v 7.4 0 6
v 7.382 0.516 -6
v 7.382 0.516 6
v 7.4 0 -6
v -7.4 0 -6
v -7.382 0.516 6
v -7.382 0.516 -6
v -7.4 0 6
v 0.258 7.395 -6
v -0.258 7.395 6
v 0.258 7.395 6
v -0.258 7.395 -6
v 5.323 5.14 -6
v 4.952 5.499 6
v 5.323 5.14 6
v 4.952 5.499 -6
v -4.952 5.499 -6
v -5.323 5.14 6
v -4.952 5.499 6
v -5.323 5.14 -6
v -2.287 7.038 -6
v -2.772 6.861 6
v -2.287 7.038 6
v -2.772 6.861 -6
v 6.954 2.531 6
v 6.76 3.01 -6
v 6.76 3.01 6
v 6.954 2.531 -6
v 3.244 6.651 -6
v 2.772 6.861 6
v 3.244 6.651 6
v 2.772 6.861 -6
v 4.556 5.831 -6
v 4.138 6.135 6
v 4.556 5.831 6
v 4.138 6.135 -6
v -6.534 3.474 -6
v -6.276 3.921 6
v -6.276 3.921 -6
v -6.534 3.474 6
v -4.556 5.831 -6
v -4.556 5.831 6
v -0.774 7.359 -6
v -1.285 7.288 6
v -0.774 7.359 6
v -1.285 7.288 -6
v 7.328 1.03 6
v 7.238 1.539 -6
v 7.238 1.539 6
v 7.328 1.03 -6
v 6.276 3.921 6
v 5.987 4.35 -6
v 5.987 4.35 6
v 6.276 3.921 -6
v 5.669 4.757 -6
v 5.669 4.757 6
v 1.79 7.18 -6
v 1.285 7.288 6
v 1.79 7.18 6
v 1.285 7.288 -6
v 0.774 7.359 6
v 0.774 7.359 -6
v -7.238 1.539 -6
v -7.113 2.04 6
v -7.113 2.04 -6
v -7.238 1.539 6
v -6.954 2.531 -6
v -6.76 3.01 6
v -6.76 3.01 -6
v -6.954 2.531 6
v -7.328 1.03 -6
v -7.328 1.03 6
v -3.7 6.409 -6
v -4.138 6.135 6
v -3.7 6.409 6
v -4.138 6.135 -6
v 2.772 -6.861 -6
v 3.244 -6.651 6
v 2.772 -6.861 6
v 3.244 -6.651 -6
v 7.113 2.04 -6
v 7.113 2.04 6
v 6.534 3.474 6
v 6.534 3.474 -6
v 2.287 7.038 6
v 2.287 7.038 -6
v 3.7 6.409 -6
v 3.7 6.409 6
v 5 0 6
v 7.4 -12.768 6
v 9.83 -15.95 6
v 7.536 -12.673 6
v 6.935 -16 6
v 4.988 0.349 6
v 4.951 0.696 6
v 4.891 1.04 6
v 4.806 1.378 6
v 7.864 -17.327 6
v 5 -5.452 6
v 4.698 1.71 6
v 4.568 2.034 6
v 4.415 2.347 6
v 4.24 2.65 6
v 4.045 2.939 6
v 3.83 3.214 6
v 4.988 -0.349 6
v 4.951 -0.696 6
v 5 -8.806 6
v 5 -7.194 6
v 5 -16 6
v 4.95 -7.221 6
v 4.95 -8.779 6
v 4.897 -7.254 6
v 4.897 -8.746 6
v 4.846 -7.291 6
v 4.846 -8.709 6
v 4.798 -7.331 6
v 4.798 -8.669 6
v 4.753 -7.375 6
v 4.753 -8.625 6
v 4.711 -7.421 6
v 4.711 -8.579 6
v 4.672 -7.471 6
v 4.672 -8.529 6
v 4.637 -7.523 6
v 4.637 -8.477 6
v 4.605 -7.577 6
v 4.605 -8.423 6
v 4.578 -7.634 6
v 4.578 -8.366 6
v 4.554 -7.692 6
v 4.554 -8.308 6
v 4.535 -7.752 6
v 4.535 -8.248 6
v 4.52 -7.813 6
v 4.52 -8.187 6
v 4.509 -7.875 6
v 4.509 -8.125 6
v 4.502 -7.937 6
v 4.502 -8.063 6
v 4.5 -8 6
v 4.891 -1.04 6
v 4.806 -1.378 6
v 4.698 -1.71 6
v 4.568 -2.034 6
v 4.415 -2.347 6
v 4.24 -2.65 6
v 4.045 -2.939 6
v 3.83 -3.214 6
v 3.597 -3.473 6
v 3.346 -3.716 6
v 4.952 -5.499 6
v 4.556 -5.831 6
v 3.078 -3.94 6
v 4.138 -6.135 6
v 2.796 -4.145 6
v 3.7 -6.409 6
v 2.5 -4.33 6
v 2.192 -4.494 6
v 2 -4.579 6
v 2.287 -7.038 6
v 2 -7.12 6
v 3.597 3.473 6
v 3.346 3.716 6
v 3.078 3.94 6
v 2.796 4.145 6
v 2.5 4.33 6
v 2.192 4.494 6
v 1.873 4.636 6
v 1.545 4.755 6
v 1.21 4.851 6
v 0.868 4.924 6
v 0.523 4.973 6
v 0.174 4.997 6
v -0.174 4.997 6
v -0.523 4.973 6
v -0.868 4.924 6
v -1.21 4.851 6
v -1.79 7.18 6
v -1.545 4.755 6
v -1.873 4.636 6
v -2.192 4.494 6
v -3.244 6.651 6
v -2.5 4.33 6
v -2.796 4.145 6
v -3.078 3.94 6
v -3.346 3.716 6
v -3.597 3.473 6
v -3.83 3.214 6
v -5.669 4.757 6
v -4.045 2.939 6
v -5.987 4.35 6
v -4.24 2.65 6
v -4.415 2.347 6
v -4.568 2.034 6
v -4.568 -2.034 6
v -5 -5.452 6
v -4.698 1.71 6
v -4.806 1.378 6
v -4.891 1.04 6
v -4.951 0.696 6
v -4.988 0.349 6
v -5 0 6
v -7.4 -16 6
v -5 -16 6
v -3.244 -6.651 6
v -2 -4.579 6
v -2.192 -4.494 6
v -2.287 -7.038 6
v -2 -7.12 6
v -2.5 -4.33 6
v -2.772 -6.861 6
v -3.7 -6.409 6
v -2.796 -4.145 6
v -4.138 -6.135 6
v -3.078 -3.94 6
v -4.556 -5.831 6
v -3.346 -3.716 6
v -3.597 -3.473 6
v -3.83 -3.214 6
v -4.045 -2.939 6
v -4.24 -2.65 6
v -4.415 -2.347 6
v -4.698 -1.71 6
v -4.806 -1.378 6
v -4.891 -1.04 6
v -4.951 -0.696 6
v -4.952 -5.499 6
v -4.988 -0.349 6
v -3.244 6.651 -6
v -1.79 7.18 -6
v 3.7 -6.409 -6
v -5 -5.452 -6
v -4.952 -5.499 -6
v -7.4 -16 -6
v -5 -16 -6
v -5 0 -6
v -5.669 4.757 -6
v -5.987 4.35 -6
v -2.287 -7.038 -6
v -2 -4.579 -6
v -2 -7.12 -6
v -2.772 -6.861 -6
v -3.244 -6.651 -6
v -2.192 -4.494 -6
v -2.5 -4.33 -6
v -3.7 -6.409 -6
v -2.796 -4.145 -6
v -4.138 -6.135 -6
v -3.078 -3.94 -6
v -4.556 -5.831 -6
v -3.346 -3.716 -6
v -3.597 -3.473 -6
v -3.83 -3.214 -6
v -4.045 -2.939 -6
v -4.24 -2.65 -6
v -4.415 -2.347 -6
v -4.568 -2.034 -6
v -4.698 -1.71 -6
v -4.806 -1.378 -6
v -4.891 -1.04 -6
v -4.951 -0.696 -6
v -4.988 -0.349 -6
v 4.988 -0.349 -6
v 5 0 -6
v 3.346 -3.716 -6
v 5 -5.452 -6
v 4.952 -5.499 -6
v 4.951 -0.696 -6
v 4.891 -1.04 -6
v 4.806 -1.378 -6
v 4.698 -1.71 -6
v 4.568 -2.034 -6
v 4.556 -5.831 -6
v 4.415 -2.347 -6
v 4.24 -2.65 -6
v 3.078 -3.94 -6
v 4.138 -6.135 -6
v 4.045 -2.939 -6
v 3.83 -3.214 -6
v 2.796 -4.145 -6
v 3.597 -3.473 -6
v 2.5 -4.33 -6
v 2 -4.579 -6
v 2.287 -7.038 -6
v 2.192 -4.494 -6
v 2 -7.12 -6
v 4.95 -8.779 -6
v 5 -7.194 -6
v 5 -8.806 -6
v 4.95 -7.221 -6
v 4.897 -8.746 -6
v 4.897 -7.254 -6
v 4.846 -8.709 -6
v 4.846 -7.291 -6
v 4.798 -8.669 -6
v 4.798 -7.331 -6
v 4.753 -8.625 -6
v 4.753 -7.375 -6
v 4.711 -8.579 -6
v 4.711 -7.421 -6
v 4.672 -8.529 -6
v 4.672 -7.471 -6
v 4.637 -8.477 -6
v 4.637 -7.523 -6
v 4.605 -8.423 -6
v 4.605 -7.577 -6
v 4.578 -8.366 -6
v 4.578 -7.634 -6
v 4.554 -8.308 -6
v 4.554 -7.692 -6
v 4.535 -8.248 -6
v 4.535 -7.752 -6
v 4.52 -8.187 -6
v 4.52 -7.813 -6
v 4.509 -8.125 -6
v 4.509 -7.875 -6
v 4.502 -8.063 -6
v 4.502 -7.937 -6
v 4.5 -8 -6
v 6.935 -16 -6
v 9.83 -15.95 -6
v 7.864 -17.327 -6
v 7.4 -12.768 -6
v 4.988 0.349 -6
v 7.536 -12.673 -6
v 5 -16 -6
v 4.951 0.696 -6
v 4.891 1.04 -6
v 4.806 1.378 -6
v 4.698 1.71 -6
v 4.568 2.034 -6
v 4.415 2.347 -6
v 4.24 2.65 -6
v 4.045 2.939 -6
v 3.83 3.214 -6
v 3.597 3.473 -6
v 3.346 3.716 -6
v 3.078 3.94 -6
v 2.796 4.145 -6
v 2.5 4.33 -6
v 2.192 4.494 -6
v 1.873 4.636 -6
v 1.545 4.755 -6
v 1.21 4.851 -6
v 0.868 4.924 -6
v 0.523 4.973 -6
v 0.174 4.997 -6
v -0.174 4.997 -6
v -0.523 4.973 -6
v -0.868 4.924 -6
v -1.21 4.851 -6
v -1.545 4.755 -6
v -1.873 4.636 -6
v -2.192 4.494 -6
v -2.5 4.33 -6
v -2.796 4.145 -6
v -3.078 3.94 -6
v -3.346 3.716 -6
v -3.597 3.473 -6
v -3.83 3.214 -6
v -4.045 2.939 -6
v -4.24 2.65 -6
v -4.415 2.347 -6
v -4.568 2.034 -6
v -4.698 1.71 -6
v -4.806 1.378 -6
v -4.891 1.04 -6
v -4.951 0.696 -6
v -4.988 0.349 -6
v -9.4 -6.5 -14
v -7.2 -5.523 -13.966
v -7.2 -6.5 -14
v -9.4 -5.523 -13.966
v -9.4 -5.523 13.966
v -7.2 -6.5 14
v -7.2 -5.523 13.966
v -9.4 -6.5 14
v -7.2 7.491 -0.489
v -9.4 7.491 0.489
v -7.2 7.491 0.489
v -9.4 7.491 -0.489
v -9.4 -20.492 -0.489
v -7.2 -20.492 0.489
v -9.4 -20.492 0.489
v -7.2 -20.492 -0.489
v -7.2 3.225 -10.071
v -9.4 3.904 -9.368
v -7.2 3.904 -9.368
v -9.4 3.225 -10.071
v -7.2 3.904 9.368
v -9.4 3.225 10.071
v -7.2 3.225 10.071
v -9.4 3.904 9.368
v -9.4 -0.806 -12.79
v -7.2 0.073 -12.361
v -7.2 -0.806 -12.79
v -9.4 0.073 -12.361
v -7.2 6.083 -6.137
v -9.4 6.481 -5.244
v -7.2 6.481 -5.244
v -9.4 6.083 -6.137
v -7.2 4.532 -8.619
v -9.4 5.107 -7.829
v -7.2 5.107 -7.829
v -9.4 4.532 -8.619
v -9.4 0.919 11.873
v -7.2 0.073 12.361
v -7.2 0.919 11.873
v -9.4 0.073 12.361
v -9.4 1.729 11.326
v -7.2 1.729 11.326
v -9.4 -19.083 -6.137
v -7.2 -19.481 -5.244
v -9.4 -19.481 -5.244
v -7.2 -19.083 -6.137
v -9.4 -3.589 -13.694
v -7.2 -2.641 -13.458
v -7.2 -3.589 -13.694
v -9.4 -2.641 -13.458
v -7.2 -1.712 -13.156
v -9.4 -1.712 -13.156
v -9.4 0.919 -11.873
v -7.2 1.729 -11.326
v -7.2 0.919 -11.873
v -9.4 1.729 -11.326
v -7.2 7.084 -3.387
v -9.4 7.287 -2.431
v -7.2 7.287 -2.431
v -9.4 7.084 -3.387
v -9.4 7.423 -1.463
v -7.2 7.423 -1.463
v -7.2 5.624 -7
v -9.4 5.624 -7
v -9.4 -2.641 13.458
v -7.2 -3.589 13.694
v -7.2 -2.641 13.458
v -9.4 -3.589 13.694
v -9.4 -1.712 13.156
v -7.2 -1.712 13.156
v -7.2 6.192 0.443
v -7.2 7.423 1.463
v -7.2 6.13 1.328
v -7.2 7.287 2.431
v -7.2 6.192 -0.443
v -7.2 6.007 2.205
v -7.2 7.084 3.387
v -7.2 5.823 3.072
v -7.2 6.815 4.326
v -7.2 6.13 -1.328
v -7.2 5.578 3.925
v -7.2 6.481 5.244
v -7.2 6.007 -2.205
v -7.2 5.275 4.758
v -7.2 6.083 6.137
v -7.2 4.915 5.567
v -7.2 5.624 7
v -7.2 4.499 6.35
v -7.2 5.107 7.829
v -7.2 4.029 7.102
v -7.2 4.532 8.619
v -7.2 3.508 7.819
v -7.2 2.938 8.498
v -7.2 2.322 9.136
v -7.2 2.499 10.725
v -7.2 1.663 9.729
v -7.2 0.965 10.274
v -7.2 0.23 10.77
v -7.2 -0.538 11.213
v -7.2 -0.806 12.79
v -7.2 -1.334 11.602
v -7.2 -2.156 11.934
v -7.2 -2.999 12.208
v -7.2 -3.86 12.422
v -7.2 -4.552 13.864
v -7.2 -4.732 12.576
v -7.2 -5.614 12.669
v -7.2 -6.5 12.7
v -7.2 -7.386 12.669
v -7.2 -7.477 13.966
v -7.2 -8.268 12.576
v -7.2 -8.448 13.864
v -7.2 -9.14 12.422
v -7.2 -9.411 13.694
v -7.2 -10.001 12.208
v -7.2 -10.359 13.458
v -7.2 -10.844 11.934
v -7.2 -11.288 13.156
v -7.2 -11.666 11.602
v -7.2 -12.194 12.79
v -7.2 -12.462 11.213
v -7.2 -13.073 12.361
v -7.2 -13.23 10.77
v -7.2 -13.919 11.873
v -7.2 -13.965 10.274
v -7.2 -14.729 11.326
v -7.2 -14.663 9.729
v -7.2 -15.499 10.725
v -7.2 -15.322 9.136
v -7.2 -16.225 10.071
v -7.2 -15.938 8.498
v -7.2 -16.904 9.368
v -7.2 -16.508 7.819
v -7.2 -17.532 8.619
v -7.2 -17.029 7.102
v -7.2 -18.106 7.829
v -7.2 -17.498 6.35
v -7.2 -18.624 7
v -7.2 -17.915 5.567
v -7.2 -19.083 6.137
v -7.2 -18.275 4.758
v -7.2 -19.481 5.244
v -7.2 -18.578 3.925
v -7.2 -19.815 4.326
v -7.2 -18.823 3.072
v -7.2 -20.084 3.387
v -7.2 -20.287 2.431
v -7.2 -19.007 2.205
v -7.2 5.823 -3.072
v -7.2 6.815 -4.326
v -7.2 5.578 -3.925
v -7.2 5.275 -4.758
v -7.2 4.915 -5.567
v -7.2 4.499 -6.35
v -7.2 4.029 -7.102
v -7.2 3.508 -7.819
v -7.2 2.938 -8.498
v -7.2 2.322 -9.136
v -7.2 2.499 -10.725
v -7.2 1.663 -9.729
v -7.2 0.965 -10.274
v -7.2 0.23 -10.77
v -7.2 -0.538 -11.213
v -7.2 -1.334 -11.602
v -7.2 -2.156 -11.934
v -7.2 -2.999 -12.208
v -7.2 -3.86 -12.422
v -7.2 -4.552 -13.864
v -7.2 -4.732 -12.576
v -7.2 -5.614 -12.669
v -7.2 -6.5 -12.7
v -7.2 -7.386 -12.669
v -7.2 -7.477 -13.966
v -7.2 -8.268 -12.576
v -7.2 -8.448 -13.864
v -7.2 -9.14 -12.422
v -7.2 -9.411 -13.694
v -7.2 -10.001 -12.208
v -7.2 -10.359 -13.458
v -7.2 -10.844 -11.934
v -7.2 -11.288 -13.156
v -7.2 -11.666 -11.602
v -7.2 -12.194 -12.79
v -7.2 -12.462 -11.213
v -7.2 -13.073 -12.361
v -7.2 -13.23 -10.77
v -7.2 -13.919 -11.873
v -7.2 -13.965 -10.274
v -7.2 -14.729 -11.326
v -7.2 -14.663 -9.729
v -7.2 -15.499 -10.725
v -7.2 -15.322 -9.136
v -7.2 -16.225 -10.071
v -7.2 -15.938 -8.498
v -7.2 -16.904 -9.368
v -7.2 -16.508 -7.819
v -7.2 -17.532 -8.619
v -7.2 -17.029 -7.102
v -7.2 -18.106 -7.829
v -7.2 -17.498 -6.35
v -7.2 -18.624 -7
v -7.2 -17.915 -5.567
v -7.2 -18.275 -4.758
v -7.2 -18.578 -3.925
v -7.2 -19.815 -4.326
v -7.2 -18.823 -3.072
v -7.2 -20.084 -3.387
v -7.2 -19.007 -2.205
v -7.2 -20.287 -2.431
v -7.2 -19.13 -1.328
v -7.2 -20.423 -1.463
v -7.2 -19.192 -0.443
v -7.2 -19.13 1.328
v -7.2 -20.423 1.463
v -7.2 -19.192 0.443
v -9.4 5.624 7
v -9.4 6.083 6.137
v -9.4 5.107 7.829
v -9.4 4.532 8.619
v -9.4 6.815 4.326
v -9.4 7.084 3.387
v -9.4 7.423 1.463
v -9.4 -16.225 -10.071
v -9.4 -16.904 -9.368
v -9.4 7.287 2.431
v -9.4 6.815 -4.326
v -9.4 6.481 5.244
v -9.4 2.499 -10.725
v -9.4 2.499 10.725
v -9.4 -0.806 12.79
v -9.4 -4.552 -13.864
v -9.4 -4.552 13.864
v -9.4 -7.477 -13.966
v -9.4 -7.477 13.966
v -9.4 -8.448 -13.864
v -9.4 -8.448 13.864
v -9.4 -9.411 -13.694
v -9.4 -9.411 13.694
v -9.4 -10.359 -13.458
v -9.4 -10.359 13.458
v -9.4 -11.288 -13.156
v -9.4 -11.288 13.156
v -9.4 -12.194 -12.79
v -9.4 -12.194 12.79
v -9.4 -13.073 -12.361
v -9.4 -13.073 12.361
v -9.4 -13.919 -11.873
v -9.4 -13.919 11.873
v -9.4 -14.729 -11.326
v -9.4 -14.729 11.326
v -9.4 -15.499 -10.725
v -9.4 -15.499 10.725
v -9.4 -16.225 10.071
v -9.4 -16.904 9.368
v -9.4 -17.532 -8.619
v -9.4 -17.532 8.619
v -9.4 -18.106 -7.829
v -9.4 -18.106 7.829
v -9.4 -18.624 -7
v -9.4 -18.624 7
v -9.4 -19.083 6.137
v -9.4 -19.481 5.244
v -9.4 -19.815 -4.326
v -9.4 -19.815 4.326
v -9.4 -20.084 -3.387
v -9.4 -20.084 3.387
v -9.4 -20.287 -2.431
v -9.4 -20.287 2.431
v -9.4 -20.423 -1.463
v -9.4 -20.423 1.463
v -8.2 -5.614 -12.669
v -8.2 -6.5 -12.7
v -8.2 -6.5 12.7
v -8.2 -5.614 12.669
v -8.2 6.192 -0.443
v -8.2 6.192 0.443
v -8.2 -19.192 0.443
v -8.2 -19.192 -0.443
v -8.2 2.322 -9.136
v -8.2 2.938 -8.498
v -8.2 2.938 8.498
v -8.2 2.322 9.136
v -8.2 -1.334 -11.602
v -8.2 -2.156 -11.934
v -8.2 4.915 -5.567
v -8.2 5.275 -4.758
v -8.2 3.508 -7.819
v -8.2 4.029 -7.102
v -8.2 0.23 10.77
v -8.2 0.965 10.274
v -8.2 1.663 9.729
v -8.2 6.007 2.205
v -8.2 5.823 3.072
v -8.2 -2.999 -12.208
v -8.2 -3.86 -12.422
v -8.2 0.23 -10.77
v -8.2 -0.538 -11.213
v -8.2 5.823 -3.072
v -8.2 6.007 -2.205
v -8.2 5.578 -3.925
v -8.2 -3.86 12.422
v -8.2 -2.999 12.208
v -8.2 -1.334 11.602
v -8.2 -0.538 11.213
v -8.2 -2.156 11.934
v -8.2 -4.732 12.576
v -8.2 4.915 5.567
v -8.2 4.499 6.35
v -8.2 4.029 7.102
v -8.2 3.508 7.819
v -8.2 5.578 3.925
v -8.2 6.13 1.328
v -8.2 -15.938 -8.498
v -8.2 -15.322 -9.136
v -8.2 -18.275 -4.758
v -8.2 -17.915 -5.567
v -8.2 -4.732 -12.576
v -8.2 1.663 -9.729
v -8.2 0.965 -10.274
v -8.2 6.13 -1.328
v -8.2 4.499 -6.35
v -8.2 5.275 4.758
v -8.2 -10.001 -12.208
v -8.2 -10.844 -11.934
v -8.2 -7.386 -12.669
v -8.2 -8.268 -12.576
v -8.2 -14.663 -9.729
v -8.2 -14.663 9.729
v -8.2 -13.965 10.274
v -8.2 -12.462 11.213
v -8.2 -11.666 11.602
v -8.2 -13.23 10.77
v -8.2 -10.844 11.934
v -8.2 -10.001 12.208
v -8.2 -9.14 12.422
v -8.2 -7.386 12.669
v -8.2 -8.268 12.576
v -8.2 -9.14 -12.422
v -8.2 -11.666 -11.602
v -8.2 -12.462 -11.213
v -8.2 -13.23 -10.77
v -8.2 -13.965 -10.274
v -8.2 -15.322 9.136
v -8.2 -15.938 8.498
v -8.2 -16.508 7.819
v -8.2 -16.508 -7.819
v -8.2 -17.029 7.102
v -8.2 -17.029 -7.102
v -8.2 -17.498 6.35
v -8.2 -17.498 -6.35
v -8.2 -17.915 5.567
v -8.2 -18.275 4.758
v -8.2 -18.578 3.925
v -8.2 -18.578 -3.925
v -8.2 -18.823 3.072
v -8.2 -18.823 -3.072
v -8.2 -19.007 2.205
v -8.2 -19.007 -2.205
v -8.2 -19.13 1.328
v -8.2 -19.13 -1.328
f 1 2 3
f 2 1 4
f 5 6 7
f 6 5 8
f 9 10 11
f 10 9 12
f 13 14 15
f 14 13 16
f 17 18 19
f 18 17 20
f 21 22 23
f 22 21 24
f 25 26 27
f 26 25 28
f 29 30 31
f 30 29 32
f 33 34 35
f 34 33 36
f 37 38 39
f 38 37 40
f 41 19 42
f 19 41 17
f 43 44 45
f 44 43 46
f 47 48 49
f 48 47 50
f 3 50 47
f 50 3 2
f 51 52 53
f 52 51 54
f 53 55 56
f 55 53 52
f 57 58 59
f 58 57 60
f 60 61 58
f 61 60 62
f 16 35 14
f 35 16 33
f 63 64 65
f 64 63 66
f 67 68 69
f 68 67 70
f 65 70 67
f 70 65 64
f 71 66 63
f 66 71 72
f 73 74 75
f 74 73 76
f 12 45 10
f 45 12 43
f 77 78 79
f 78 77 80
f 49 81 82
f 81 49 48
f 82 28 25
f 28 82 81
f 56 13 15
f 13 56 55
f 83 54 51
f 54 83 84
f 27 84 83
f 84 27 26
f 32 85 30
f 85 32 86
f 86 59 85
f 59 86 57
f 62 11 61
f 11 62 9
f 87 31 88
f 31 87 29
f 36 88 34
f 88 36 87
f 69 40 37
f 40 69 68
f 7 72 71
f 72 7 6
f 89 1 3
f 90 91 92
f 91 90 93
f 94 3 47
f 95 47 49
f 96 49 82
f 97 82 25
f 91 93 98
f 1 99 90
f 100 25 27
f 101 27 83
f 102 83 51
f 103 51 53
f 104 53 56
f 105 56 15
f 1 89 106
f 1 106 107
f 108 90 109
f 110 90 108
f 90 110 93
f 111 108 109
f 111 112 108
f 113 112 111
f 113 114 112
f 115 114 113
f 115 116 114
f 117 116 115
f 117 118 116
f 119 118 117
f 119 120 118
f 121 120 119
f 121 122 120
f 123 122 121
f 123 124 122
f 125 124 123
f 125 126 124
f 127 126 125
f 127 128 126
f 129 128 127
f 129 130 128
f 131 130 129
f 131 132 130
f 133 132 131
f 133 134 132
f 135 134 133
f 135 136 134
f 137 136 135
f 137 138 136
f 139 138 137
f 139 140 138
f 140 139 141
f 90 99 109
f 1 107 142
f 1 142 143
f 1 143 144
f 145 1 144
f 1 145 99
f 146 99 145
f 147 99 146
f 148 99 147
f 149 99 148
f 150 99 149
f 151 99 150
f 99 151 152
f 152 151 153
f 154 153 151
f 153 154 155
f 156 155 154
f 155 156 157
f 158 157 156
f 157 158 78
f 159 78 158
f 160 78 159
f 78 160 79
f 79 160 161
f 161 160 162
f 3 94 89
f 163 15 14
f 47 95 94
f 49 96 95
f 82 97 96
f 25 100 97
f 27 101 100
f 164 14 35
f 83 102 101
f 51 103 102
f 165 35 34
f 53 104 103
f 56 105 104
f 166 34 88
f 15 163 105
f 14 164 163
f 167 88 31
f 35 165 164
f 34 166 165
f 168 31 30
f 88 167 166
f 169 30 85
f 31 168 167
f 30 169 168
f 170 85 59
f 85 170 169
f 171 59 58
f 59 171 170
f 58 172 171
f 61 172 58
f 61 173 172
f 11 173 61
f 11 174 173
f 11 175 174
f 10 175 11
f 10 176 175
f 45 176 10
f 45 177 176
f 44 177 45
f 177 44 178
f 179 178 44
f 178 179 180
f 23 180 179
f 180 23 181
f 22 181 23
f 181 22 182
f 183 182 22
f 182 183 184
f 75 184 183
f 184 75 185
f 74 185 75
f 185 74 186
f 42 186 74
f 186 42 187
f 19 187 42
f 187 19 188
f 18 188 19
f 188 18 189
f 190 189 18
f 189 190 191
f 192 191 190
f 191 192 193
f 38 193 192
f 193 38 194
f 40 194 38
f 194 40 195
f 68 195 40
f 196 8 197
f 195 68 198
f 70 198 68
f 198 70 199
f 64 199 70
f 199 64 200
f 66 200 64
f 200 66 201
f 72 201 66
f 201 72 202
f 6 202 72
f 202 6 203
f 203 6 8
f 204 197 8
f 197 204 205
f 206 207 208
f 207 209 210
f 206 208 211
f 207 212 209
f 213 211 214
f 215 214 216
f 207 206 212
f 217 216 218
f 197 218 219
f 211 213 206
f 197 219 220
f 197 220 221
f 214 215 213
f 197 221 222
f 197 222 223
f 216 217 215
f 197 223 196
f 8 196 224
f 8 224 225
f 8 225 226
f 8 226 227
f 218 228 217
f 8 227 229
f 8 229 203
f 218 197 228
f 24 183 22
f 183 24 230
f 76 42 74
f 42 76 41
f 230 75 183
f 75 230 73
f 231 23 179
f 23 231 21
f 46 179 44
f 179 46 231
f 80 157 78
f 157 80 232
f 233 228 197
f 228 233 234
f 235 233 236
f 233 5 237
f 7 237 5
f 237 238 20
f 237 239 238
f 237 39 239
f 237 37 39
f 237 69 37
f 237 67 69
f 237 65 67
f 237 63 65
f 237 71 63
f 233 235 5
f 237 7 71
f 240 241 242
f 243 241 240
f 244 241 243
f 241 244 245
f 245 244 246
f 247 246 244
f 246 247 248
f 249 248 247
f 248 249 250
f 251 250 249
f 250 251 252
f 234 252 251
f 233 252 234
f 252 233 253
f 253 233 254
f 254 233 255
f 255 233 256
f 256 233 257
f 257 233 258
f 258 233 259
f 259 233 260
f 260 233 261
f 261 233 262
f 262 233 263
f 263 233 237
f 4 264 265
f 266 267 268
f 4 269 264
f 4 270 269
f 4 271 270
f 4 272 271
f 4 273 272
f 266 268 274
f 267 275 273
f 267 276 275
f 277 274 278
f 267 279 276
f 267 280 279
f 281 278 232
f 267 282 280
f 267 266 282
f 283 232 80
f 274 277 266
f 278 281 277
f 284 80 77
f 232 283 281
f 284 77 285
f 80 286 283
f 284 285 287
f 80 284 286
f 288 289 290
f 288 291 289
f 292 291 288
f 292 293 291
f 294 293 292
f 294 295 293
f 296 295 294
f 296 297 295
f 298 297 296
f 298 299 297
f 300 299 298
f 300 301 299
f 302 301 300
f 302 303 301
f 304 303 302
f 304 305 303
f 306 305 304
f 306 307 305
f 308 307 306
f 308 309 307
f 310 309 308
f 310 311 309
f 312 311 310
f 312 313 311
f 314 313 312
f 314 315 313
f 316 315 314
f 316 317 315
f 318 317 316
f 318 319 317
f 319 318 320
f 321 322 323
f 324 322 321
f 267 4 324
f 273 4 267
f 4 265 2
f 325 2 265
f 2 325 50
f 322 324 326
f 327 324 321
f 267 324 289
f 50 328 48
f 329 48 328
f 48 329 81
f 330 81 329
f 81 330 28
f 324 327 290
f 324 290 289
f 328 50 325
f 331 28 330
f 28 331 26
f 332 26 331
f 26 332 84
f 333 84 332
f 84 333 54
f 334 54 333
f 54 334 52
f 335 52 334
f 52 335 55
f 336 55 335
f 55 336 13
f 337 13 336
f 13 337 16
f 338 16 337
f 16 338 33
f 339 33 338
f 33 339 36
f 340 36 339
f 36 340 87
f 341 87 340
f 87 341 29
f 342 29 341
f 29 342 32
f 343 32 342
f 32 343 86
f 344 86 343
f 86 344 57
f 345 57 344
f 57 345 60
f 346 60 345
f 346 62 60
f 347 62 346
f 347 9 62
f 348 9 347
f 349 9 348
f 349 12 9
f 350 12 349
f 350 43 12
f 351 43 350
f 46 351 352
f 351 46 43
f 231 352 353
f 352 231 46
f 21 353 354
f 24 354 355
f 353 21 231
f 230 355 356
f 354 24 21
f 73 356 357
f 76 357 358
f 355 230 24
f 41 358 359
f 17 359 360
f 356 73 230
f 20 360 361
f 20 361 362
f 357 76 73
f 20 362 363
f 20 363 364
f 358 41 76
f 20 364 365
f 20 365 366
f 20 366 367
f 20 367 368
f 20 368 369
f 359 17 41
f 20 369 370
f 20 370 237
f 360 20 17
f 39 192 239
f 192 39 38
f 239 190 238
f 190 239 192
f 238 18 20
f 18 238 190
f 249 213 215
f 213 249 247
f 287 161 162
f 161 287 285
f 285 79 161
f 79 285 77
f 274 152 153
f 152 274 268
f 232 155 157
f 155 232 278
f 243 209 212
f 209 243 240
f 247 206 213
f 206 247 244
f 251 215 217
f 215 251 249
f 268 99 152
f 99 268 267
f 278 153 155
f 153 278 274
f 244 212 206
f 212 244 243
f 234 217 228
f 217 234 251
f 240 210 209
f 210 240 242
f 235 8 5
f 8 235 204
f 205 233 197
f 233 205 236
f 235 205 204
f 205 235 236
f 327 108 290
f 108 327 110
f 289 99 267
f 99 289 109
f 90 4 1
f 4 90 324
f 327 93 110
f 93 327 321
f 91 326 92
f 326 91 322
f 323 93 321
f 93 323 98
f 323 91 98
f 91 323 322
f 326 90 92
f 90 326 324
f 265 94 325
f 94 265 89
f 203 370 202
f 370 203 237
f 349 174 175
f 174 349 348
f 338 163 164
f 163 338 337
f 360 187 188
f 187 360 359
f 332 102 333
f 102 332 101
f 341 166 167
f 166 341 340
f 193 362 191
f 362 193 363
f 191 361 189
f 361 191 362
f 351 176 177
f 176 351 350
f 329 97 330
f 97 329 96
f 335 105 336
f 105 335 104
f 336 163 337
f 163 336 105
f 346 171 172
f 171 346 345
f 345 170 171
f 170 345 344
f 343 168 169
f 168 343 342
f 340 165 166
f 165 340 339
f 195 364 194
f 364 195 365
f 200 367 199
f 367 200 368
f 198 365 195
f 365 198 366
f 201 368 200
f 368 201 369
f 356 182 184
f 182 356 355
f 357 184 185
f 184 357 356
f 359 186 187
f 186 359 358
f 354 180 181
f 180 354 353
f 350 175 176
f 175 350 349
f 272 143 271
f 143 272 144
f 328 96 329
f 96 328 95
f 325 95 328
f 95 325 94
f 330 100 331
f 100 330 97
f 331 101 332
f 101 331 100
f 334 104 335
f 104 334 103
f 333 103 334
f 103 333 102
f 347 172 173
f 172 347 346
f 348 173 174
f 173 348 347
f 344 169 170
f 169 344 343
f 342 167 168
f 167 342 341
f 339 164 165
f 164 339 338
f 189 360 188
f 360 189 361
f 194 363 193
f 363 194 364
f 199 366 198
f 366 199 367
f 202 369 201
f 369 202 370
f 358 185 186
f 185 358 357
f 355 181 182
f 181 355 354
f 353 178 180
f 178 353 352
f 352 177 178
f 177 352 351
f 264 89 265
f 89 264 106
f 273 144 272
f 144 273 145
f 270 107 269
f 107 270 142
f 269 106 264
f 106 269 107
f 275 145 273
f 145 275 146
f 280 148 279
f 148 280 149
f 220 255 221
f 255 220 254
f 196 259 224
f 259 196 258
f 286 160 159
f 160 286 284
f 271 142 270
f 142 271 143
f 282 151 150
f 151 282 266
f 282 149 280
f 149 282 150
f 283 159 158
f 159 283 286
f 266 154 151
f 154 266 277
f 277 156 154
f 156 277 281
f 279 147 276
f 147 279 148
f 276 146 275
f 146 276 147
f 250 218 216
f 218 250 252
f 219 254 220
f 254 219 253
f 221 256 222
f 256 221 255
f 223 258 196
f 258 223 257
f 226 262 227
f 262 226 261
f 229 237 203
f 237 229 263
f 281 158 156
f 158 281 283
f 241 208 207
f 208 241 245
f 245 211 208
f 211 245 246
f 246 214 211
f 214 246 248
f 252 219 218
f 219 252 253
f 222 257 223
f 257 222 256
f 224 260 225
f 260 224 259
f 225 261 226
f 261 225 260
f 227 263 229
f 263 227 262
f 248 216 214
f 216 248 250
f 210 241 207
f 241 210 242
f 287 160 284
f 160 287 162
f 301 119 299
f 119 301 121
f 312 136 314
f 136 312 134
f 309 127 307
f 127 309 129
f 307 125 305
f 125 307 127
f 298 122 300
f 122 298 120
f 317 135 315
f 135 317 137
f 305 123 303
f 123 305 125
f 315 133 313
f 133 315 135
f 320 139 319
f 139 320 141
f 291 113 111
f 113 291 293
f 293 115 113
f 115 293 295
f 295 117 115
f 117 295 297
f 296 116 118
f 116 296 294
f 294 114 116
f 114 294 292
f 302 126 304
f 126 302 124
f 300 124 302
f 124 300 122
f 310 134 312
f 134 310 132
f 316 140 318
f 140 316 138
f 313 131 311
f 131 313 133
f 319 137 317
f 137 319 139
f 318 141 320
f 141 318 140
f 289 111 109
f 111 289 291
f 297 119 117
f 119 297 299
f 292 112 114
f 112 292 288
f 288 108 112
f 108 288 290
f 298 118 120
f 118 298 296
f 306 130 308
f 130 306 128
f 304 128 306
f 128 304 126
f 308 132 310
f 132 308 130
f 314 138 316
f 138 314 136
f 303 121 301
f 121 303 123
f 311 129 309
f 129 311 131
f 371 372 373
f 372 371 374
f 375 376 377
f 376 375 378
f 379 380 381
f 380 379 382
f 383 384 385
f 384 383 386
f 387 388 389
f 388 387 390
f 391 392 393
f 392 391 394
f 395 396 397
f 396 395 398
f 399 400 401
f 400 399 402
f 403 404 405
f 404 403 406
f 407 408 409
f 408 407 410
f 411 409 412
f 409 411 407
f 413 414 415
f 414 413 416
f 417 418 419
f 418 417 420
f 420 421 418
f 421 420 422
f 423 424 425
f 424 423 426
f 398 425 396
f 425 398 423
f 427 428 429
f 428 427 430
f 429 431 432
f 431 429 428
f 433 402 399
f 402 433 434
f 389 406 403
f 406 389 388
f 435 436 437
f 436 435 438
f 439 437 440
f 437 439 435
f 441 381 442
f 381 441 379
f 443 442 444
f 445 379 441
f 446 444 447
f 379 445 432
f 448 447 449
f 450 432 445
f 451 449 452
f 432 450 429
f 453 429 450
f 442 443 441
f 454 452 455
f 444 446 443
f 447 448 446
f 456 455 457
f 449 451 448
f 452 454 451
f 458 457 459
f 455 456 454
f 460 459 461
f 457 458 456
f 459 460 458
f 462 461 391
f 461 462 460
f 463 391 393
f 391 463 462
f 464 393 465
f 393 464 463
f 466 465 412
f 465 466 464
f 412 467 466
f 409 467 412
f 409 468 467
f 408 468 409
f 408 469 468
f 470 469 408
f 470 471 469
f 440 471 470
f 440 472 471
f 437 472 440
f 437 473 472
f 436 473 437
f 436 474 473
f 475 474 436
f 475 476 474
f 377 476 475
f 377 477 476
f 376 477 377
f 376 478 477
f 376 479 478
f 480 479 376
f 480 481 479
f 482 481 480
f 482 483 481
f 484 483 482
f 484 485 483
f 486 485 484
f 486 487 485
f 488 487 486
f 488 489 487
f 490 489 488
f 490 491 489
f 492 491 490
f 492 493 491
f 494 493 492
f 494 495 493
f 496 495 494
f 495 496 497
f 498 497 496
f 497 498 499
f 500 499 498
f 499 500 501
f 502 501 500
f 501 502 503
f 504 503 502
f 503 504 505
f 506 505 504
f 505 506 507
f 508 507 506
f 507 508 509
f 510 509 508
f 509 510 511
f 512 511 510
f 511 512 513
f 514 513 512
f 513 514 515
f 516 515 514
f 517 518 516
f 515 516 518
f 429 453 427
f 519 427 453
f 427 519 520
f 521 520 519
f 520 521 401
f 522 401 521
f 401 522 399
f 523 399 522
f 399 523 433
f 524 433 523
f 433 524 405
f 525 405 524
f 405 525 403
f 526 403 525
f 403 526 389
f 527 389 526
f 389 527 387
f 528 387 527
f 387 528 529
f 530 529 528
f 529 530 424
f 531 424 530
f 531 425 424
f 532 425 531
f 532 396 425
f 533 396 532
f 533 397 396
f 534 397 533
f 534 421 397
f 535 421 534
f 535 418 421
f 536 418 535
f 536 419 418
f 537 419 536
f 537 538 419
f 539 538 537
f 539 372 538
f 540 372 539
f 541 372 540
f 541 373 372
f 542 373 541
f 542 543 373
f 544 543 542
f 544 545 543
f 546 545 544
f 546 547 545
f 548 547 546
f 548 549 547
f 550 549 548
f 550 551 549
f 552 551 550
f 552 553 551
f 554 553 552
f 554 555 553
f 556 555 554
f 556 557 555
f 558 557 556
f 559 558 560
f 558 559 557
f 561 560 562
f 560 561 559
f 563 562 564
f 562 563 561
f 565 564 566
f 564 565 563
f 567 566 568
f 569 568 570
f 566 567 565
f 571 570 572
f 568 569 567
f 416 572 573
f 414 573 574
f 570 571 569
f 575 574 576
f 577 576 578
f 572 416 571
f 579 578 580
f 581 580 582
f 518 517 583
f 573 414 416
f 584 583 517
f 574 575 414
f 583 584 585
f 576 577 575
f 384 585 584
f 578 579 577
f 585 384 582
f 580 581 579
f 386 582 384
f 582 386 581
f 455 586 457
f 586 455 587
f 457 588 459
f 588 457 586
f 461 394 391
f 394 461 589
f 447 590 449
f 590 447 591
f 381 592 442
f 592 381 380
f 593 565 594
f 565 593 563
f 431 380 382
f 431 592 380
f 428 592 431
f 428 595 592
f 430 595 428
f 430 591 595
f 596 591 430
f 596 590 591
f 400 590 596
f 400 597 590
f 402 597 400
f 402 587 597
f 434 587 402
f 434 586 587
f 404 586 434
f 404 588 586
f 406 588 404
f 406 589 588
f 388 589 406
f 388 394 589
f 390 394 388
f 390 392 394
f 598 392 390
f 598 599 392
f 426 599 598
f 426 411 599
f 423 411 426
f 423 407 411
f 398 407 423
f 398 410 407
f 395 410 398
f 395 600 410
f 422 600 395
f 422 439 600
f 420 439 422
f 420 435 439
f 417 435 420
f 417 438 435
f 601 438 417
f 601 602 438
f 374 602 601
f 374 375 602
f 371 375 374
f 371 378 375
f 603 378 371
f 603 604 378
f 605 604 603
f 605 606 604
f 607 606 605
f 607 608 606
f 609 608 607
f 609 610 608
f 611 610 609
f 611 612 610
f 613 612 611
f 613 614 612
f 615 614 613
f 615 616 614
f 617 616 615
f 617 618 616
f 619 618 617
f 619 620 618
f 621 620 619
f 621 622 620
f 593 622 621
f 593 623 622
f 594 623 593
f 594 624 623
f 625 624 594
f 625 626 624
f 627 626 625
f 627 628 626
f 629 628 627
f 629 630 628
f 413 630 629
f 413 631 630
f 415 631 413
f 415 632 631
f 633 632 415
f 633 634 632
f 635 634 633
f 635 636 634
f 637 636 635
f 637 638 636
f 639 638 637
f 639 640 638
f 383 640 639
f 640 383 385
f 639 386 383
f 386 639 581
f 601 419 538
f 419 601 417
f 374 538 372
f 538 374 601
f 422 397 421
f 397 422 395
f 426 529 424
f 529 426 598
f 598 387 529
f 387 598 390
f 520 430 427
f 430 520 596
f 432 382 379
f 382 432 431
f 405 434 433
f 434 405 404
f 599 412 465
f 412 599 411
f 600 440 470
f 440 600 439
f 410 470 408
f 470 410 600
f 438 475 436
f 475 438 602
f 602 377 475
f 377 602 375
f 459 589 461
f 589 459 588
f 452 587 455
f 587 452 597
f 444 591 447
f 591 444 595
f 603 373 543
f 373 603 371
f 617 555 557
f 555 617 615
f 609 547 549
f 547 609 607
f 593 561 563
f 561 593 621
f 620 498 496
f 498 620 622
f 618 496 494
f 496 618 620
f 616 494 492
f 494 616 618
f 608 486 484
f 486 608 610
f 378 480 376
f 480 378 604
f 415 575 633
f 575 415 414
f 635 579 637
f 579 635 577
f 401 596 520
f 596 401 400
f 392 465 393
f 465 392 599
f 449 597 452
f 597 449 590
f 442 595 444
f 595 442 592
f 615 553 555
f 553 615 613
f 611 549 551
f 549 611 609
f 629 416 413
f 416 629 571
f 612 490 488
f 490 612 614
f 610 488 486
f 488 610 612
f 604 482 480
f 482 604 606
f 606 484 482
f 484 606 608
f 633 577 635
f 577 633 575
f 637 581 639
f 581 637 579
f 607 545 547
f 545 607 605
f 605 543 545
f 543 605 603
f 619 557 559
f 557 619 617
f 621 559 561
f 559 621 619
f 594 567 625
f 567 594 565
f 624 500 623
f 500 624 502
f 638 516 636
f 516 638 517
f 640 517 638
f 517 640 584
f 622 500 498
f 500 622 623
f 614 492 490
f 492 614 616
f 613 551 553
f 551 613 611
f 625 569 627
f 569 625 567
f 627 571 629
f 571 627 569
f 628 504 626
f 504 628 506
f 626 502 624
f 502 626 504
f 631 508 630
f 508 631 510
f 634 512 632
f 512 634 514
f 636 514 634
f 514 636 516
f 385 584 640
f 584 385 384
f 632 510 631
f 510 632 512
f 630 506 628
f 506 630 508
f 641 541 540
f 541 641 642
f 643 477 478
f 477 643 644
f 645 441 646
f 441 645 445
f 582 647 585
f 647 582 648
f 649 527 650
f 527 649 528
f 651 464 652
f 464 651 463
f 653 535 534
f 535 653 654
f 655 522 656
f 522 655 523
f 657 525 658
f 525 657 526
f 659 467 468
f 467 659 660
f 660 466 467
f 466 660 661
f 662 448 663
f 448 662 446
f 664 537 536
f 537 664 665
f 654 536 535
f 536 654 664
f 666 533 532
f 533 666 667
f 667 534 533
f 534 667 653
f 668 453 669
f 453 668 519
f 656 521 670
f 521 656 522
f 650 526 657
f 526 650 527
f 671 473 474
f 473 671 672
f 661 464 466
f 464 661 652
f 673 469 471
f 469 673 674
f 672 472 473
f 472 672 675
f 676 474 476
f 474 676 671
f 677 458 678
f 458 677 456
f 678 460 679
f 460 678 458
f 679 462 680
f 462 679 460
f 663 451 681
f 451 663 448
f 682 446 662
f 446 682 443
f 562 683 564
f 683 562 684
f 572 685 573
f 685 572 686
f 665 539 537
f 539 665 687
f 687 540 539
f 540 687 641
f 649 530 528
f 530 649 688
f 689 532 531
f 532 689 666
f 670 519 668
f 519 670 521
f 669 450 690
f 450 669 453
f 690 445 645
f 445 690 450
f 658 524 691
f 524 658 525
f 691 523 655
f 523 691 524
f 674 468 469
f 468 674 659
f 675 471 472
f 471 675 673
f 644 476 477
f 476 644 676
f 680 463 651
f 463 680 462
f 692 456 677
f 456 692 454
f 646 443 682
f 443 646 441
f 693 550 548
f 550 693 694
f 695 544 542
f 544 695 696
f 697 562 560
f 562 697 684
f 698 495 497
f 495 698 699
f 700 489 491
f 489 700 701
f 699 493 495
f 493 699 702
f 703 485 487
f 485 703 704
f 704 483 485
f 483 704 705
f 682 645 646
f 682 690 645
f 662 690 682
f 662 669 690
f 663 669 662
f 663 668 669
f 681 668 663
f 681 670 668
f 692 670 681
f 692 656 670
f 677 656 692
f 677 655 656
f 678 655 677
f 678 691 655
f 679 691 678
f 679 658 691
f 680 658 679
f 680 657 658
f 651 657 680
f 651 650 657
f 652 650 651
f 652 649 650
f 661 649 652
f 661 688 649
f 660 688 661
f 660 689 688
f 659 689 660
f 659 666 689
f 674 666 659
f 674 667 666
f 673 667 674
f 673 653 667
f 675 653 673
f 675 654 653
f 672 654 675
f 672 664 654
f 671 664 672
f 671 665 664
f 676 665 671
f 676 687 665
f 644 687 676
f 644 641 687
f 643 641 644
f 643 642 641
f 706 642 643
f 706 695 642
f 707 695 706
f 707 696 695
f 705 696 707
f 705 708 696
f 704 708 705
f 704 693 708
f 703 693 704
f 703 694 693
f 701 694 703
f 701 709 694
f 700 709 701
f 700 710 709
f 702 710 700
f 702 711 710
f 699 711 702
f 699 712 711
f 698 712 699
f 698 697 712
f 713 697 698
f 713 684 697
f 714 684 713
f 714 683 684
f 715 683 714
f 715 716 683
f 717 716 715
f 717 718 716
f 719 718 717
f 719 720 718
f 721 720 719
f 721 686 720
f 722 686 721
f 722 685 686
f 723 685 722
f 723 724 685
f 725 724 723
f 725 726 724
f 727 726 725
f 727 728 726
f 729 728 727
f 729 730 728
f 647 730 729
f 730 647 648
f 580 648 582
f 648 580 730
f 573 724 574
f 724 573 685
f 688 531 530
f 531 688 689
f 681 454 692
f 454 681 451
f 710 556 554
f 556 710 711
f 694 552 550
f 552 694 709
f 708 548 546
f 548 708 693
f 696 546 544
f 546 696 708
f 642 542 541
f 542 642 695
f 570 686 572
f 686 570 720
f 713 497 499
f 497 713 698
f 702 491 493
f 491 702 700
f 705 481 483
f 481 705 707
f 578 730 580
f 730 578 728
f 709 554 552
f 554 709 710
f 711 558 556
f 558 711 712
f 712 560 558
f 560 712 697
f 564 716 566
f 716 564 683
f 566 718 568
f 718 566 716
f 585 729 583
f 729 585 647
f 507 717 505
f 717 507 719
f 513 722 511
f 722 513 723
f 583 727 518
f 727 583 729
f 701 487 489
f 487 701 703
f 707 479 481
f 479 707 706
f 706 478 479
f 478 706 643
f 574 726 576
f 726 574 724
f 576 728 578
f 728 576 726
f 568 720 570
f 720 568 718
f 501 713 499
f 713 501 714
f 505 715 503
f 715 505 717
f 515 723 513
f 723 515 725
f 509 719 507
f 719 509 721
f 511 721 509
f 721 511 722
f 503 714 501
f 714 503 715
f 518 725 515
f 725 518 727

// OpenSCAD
$fn = 90;

// Parâmetros do Clipe em Ômega
clip_width = 12.0;       // Largura do corpo do clipe
clip_thickness = 2.4;   // Espessura da mola
inner_r = 5.0;          // Raio interno do arco
opening_gap = 4.0;      // Encaixe da borda do carretel
arm_len = 16.0;         // Comprimento da perna

// Parâmetros do Berço NFC
nfc_tag_dia = 25.4;     // Diâmetro do adesivo NTAG213/215
nfc_recess_depth = 1.0; // Rebaixo para proteger o adesivo
disc_dia = 28.0;        // Diâmetro externo da orelha
disc_thick = 2.2;       // Espessura da orelha

module clipe_omega() {
    difference() {
        union() {
            // Arco superior
            cylinder(r = inner_r + clip_thickness, h = clip_width, center = true);
            // Perna esquerda (face de fixação da tag)
            translate([-(inner_r + clip_thickness/2), -arm_len/2, 0])
                cube([clip_thickness, arm_len, clip_width], center = true);
            // Perna direita com chanfro
            translate([(inner_r + clip_thickness/2), -arm_len/2, 0])
                cube([clip_thickness, arm_len, clip_width], center = true);
            // Aba de saída para facilitar encaixe
            translate([(inner_r + clip_thickness/2) + 1.5, -arm_len + 1, 0])
                rotate([0, 0, 35])
                cube([clip_thickness, 4, clip_width], center = true);
        }
        // Abertura interna do ômega
        cylinder(r = inner_r, h = clip_width + 2, center = true);
        translate([0, -arm_len/2, 0])
            cube([opening_gap, arm_len + 2, clip_width + 2], center = true);
    }
    
    // Dente serrilhado para prender a ponta do filamento 1.75mm
    translate([(inner_r + clip_thickness/2) - 0.8, -arm_len/2, 0])
        cylinder(r = 0.9, h = clip_width, center = true);
}

module berco_nfc() {
    difference() {
        // Disco estrutural externo
        cylinder(d = disc_dia, h = disc_thick, center = true);
        // Nicho embutido para a tag NFC
        translate([0, 0, (disc_thick - nfc_recess_depth) / 2 + 0.05])
            cylinder(d = nfc_tag_dia, h = nfc_recess_depth + 0.1, center = true);
    }
}

// Fusão do Clipe com a Orelha NFC
union() {
    clipe_omega();
    // Posiciona o disco na lateral da perna externa
    translate([-(inner_r + clip_thickness) - disc_thick/2 + 0.2, -arm_len/2 + 1.5, 0])
        rotate([0, 90, 0])
        berco_nfc();
}
